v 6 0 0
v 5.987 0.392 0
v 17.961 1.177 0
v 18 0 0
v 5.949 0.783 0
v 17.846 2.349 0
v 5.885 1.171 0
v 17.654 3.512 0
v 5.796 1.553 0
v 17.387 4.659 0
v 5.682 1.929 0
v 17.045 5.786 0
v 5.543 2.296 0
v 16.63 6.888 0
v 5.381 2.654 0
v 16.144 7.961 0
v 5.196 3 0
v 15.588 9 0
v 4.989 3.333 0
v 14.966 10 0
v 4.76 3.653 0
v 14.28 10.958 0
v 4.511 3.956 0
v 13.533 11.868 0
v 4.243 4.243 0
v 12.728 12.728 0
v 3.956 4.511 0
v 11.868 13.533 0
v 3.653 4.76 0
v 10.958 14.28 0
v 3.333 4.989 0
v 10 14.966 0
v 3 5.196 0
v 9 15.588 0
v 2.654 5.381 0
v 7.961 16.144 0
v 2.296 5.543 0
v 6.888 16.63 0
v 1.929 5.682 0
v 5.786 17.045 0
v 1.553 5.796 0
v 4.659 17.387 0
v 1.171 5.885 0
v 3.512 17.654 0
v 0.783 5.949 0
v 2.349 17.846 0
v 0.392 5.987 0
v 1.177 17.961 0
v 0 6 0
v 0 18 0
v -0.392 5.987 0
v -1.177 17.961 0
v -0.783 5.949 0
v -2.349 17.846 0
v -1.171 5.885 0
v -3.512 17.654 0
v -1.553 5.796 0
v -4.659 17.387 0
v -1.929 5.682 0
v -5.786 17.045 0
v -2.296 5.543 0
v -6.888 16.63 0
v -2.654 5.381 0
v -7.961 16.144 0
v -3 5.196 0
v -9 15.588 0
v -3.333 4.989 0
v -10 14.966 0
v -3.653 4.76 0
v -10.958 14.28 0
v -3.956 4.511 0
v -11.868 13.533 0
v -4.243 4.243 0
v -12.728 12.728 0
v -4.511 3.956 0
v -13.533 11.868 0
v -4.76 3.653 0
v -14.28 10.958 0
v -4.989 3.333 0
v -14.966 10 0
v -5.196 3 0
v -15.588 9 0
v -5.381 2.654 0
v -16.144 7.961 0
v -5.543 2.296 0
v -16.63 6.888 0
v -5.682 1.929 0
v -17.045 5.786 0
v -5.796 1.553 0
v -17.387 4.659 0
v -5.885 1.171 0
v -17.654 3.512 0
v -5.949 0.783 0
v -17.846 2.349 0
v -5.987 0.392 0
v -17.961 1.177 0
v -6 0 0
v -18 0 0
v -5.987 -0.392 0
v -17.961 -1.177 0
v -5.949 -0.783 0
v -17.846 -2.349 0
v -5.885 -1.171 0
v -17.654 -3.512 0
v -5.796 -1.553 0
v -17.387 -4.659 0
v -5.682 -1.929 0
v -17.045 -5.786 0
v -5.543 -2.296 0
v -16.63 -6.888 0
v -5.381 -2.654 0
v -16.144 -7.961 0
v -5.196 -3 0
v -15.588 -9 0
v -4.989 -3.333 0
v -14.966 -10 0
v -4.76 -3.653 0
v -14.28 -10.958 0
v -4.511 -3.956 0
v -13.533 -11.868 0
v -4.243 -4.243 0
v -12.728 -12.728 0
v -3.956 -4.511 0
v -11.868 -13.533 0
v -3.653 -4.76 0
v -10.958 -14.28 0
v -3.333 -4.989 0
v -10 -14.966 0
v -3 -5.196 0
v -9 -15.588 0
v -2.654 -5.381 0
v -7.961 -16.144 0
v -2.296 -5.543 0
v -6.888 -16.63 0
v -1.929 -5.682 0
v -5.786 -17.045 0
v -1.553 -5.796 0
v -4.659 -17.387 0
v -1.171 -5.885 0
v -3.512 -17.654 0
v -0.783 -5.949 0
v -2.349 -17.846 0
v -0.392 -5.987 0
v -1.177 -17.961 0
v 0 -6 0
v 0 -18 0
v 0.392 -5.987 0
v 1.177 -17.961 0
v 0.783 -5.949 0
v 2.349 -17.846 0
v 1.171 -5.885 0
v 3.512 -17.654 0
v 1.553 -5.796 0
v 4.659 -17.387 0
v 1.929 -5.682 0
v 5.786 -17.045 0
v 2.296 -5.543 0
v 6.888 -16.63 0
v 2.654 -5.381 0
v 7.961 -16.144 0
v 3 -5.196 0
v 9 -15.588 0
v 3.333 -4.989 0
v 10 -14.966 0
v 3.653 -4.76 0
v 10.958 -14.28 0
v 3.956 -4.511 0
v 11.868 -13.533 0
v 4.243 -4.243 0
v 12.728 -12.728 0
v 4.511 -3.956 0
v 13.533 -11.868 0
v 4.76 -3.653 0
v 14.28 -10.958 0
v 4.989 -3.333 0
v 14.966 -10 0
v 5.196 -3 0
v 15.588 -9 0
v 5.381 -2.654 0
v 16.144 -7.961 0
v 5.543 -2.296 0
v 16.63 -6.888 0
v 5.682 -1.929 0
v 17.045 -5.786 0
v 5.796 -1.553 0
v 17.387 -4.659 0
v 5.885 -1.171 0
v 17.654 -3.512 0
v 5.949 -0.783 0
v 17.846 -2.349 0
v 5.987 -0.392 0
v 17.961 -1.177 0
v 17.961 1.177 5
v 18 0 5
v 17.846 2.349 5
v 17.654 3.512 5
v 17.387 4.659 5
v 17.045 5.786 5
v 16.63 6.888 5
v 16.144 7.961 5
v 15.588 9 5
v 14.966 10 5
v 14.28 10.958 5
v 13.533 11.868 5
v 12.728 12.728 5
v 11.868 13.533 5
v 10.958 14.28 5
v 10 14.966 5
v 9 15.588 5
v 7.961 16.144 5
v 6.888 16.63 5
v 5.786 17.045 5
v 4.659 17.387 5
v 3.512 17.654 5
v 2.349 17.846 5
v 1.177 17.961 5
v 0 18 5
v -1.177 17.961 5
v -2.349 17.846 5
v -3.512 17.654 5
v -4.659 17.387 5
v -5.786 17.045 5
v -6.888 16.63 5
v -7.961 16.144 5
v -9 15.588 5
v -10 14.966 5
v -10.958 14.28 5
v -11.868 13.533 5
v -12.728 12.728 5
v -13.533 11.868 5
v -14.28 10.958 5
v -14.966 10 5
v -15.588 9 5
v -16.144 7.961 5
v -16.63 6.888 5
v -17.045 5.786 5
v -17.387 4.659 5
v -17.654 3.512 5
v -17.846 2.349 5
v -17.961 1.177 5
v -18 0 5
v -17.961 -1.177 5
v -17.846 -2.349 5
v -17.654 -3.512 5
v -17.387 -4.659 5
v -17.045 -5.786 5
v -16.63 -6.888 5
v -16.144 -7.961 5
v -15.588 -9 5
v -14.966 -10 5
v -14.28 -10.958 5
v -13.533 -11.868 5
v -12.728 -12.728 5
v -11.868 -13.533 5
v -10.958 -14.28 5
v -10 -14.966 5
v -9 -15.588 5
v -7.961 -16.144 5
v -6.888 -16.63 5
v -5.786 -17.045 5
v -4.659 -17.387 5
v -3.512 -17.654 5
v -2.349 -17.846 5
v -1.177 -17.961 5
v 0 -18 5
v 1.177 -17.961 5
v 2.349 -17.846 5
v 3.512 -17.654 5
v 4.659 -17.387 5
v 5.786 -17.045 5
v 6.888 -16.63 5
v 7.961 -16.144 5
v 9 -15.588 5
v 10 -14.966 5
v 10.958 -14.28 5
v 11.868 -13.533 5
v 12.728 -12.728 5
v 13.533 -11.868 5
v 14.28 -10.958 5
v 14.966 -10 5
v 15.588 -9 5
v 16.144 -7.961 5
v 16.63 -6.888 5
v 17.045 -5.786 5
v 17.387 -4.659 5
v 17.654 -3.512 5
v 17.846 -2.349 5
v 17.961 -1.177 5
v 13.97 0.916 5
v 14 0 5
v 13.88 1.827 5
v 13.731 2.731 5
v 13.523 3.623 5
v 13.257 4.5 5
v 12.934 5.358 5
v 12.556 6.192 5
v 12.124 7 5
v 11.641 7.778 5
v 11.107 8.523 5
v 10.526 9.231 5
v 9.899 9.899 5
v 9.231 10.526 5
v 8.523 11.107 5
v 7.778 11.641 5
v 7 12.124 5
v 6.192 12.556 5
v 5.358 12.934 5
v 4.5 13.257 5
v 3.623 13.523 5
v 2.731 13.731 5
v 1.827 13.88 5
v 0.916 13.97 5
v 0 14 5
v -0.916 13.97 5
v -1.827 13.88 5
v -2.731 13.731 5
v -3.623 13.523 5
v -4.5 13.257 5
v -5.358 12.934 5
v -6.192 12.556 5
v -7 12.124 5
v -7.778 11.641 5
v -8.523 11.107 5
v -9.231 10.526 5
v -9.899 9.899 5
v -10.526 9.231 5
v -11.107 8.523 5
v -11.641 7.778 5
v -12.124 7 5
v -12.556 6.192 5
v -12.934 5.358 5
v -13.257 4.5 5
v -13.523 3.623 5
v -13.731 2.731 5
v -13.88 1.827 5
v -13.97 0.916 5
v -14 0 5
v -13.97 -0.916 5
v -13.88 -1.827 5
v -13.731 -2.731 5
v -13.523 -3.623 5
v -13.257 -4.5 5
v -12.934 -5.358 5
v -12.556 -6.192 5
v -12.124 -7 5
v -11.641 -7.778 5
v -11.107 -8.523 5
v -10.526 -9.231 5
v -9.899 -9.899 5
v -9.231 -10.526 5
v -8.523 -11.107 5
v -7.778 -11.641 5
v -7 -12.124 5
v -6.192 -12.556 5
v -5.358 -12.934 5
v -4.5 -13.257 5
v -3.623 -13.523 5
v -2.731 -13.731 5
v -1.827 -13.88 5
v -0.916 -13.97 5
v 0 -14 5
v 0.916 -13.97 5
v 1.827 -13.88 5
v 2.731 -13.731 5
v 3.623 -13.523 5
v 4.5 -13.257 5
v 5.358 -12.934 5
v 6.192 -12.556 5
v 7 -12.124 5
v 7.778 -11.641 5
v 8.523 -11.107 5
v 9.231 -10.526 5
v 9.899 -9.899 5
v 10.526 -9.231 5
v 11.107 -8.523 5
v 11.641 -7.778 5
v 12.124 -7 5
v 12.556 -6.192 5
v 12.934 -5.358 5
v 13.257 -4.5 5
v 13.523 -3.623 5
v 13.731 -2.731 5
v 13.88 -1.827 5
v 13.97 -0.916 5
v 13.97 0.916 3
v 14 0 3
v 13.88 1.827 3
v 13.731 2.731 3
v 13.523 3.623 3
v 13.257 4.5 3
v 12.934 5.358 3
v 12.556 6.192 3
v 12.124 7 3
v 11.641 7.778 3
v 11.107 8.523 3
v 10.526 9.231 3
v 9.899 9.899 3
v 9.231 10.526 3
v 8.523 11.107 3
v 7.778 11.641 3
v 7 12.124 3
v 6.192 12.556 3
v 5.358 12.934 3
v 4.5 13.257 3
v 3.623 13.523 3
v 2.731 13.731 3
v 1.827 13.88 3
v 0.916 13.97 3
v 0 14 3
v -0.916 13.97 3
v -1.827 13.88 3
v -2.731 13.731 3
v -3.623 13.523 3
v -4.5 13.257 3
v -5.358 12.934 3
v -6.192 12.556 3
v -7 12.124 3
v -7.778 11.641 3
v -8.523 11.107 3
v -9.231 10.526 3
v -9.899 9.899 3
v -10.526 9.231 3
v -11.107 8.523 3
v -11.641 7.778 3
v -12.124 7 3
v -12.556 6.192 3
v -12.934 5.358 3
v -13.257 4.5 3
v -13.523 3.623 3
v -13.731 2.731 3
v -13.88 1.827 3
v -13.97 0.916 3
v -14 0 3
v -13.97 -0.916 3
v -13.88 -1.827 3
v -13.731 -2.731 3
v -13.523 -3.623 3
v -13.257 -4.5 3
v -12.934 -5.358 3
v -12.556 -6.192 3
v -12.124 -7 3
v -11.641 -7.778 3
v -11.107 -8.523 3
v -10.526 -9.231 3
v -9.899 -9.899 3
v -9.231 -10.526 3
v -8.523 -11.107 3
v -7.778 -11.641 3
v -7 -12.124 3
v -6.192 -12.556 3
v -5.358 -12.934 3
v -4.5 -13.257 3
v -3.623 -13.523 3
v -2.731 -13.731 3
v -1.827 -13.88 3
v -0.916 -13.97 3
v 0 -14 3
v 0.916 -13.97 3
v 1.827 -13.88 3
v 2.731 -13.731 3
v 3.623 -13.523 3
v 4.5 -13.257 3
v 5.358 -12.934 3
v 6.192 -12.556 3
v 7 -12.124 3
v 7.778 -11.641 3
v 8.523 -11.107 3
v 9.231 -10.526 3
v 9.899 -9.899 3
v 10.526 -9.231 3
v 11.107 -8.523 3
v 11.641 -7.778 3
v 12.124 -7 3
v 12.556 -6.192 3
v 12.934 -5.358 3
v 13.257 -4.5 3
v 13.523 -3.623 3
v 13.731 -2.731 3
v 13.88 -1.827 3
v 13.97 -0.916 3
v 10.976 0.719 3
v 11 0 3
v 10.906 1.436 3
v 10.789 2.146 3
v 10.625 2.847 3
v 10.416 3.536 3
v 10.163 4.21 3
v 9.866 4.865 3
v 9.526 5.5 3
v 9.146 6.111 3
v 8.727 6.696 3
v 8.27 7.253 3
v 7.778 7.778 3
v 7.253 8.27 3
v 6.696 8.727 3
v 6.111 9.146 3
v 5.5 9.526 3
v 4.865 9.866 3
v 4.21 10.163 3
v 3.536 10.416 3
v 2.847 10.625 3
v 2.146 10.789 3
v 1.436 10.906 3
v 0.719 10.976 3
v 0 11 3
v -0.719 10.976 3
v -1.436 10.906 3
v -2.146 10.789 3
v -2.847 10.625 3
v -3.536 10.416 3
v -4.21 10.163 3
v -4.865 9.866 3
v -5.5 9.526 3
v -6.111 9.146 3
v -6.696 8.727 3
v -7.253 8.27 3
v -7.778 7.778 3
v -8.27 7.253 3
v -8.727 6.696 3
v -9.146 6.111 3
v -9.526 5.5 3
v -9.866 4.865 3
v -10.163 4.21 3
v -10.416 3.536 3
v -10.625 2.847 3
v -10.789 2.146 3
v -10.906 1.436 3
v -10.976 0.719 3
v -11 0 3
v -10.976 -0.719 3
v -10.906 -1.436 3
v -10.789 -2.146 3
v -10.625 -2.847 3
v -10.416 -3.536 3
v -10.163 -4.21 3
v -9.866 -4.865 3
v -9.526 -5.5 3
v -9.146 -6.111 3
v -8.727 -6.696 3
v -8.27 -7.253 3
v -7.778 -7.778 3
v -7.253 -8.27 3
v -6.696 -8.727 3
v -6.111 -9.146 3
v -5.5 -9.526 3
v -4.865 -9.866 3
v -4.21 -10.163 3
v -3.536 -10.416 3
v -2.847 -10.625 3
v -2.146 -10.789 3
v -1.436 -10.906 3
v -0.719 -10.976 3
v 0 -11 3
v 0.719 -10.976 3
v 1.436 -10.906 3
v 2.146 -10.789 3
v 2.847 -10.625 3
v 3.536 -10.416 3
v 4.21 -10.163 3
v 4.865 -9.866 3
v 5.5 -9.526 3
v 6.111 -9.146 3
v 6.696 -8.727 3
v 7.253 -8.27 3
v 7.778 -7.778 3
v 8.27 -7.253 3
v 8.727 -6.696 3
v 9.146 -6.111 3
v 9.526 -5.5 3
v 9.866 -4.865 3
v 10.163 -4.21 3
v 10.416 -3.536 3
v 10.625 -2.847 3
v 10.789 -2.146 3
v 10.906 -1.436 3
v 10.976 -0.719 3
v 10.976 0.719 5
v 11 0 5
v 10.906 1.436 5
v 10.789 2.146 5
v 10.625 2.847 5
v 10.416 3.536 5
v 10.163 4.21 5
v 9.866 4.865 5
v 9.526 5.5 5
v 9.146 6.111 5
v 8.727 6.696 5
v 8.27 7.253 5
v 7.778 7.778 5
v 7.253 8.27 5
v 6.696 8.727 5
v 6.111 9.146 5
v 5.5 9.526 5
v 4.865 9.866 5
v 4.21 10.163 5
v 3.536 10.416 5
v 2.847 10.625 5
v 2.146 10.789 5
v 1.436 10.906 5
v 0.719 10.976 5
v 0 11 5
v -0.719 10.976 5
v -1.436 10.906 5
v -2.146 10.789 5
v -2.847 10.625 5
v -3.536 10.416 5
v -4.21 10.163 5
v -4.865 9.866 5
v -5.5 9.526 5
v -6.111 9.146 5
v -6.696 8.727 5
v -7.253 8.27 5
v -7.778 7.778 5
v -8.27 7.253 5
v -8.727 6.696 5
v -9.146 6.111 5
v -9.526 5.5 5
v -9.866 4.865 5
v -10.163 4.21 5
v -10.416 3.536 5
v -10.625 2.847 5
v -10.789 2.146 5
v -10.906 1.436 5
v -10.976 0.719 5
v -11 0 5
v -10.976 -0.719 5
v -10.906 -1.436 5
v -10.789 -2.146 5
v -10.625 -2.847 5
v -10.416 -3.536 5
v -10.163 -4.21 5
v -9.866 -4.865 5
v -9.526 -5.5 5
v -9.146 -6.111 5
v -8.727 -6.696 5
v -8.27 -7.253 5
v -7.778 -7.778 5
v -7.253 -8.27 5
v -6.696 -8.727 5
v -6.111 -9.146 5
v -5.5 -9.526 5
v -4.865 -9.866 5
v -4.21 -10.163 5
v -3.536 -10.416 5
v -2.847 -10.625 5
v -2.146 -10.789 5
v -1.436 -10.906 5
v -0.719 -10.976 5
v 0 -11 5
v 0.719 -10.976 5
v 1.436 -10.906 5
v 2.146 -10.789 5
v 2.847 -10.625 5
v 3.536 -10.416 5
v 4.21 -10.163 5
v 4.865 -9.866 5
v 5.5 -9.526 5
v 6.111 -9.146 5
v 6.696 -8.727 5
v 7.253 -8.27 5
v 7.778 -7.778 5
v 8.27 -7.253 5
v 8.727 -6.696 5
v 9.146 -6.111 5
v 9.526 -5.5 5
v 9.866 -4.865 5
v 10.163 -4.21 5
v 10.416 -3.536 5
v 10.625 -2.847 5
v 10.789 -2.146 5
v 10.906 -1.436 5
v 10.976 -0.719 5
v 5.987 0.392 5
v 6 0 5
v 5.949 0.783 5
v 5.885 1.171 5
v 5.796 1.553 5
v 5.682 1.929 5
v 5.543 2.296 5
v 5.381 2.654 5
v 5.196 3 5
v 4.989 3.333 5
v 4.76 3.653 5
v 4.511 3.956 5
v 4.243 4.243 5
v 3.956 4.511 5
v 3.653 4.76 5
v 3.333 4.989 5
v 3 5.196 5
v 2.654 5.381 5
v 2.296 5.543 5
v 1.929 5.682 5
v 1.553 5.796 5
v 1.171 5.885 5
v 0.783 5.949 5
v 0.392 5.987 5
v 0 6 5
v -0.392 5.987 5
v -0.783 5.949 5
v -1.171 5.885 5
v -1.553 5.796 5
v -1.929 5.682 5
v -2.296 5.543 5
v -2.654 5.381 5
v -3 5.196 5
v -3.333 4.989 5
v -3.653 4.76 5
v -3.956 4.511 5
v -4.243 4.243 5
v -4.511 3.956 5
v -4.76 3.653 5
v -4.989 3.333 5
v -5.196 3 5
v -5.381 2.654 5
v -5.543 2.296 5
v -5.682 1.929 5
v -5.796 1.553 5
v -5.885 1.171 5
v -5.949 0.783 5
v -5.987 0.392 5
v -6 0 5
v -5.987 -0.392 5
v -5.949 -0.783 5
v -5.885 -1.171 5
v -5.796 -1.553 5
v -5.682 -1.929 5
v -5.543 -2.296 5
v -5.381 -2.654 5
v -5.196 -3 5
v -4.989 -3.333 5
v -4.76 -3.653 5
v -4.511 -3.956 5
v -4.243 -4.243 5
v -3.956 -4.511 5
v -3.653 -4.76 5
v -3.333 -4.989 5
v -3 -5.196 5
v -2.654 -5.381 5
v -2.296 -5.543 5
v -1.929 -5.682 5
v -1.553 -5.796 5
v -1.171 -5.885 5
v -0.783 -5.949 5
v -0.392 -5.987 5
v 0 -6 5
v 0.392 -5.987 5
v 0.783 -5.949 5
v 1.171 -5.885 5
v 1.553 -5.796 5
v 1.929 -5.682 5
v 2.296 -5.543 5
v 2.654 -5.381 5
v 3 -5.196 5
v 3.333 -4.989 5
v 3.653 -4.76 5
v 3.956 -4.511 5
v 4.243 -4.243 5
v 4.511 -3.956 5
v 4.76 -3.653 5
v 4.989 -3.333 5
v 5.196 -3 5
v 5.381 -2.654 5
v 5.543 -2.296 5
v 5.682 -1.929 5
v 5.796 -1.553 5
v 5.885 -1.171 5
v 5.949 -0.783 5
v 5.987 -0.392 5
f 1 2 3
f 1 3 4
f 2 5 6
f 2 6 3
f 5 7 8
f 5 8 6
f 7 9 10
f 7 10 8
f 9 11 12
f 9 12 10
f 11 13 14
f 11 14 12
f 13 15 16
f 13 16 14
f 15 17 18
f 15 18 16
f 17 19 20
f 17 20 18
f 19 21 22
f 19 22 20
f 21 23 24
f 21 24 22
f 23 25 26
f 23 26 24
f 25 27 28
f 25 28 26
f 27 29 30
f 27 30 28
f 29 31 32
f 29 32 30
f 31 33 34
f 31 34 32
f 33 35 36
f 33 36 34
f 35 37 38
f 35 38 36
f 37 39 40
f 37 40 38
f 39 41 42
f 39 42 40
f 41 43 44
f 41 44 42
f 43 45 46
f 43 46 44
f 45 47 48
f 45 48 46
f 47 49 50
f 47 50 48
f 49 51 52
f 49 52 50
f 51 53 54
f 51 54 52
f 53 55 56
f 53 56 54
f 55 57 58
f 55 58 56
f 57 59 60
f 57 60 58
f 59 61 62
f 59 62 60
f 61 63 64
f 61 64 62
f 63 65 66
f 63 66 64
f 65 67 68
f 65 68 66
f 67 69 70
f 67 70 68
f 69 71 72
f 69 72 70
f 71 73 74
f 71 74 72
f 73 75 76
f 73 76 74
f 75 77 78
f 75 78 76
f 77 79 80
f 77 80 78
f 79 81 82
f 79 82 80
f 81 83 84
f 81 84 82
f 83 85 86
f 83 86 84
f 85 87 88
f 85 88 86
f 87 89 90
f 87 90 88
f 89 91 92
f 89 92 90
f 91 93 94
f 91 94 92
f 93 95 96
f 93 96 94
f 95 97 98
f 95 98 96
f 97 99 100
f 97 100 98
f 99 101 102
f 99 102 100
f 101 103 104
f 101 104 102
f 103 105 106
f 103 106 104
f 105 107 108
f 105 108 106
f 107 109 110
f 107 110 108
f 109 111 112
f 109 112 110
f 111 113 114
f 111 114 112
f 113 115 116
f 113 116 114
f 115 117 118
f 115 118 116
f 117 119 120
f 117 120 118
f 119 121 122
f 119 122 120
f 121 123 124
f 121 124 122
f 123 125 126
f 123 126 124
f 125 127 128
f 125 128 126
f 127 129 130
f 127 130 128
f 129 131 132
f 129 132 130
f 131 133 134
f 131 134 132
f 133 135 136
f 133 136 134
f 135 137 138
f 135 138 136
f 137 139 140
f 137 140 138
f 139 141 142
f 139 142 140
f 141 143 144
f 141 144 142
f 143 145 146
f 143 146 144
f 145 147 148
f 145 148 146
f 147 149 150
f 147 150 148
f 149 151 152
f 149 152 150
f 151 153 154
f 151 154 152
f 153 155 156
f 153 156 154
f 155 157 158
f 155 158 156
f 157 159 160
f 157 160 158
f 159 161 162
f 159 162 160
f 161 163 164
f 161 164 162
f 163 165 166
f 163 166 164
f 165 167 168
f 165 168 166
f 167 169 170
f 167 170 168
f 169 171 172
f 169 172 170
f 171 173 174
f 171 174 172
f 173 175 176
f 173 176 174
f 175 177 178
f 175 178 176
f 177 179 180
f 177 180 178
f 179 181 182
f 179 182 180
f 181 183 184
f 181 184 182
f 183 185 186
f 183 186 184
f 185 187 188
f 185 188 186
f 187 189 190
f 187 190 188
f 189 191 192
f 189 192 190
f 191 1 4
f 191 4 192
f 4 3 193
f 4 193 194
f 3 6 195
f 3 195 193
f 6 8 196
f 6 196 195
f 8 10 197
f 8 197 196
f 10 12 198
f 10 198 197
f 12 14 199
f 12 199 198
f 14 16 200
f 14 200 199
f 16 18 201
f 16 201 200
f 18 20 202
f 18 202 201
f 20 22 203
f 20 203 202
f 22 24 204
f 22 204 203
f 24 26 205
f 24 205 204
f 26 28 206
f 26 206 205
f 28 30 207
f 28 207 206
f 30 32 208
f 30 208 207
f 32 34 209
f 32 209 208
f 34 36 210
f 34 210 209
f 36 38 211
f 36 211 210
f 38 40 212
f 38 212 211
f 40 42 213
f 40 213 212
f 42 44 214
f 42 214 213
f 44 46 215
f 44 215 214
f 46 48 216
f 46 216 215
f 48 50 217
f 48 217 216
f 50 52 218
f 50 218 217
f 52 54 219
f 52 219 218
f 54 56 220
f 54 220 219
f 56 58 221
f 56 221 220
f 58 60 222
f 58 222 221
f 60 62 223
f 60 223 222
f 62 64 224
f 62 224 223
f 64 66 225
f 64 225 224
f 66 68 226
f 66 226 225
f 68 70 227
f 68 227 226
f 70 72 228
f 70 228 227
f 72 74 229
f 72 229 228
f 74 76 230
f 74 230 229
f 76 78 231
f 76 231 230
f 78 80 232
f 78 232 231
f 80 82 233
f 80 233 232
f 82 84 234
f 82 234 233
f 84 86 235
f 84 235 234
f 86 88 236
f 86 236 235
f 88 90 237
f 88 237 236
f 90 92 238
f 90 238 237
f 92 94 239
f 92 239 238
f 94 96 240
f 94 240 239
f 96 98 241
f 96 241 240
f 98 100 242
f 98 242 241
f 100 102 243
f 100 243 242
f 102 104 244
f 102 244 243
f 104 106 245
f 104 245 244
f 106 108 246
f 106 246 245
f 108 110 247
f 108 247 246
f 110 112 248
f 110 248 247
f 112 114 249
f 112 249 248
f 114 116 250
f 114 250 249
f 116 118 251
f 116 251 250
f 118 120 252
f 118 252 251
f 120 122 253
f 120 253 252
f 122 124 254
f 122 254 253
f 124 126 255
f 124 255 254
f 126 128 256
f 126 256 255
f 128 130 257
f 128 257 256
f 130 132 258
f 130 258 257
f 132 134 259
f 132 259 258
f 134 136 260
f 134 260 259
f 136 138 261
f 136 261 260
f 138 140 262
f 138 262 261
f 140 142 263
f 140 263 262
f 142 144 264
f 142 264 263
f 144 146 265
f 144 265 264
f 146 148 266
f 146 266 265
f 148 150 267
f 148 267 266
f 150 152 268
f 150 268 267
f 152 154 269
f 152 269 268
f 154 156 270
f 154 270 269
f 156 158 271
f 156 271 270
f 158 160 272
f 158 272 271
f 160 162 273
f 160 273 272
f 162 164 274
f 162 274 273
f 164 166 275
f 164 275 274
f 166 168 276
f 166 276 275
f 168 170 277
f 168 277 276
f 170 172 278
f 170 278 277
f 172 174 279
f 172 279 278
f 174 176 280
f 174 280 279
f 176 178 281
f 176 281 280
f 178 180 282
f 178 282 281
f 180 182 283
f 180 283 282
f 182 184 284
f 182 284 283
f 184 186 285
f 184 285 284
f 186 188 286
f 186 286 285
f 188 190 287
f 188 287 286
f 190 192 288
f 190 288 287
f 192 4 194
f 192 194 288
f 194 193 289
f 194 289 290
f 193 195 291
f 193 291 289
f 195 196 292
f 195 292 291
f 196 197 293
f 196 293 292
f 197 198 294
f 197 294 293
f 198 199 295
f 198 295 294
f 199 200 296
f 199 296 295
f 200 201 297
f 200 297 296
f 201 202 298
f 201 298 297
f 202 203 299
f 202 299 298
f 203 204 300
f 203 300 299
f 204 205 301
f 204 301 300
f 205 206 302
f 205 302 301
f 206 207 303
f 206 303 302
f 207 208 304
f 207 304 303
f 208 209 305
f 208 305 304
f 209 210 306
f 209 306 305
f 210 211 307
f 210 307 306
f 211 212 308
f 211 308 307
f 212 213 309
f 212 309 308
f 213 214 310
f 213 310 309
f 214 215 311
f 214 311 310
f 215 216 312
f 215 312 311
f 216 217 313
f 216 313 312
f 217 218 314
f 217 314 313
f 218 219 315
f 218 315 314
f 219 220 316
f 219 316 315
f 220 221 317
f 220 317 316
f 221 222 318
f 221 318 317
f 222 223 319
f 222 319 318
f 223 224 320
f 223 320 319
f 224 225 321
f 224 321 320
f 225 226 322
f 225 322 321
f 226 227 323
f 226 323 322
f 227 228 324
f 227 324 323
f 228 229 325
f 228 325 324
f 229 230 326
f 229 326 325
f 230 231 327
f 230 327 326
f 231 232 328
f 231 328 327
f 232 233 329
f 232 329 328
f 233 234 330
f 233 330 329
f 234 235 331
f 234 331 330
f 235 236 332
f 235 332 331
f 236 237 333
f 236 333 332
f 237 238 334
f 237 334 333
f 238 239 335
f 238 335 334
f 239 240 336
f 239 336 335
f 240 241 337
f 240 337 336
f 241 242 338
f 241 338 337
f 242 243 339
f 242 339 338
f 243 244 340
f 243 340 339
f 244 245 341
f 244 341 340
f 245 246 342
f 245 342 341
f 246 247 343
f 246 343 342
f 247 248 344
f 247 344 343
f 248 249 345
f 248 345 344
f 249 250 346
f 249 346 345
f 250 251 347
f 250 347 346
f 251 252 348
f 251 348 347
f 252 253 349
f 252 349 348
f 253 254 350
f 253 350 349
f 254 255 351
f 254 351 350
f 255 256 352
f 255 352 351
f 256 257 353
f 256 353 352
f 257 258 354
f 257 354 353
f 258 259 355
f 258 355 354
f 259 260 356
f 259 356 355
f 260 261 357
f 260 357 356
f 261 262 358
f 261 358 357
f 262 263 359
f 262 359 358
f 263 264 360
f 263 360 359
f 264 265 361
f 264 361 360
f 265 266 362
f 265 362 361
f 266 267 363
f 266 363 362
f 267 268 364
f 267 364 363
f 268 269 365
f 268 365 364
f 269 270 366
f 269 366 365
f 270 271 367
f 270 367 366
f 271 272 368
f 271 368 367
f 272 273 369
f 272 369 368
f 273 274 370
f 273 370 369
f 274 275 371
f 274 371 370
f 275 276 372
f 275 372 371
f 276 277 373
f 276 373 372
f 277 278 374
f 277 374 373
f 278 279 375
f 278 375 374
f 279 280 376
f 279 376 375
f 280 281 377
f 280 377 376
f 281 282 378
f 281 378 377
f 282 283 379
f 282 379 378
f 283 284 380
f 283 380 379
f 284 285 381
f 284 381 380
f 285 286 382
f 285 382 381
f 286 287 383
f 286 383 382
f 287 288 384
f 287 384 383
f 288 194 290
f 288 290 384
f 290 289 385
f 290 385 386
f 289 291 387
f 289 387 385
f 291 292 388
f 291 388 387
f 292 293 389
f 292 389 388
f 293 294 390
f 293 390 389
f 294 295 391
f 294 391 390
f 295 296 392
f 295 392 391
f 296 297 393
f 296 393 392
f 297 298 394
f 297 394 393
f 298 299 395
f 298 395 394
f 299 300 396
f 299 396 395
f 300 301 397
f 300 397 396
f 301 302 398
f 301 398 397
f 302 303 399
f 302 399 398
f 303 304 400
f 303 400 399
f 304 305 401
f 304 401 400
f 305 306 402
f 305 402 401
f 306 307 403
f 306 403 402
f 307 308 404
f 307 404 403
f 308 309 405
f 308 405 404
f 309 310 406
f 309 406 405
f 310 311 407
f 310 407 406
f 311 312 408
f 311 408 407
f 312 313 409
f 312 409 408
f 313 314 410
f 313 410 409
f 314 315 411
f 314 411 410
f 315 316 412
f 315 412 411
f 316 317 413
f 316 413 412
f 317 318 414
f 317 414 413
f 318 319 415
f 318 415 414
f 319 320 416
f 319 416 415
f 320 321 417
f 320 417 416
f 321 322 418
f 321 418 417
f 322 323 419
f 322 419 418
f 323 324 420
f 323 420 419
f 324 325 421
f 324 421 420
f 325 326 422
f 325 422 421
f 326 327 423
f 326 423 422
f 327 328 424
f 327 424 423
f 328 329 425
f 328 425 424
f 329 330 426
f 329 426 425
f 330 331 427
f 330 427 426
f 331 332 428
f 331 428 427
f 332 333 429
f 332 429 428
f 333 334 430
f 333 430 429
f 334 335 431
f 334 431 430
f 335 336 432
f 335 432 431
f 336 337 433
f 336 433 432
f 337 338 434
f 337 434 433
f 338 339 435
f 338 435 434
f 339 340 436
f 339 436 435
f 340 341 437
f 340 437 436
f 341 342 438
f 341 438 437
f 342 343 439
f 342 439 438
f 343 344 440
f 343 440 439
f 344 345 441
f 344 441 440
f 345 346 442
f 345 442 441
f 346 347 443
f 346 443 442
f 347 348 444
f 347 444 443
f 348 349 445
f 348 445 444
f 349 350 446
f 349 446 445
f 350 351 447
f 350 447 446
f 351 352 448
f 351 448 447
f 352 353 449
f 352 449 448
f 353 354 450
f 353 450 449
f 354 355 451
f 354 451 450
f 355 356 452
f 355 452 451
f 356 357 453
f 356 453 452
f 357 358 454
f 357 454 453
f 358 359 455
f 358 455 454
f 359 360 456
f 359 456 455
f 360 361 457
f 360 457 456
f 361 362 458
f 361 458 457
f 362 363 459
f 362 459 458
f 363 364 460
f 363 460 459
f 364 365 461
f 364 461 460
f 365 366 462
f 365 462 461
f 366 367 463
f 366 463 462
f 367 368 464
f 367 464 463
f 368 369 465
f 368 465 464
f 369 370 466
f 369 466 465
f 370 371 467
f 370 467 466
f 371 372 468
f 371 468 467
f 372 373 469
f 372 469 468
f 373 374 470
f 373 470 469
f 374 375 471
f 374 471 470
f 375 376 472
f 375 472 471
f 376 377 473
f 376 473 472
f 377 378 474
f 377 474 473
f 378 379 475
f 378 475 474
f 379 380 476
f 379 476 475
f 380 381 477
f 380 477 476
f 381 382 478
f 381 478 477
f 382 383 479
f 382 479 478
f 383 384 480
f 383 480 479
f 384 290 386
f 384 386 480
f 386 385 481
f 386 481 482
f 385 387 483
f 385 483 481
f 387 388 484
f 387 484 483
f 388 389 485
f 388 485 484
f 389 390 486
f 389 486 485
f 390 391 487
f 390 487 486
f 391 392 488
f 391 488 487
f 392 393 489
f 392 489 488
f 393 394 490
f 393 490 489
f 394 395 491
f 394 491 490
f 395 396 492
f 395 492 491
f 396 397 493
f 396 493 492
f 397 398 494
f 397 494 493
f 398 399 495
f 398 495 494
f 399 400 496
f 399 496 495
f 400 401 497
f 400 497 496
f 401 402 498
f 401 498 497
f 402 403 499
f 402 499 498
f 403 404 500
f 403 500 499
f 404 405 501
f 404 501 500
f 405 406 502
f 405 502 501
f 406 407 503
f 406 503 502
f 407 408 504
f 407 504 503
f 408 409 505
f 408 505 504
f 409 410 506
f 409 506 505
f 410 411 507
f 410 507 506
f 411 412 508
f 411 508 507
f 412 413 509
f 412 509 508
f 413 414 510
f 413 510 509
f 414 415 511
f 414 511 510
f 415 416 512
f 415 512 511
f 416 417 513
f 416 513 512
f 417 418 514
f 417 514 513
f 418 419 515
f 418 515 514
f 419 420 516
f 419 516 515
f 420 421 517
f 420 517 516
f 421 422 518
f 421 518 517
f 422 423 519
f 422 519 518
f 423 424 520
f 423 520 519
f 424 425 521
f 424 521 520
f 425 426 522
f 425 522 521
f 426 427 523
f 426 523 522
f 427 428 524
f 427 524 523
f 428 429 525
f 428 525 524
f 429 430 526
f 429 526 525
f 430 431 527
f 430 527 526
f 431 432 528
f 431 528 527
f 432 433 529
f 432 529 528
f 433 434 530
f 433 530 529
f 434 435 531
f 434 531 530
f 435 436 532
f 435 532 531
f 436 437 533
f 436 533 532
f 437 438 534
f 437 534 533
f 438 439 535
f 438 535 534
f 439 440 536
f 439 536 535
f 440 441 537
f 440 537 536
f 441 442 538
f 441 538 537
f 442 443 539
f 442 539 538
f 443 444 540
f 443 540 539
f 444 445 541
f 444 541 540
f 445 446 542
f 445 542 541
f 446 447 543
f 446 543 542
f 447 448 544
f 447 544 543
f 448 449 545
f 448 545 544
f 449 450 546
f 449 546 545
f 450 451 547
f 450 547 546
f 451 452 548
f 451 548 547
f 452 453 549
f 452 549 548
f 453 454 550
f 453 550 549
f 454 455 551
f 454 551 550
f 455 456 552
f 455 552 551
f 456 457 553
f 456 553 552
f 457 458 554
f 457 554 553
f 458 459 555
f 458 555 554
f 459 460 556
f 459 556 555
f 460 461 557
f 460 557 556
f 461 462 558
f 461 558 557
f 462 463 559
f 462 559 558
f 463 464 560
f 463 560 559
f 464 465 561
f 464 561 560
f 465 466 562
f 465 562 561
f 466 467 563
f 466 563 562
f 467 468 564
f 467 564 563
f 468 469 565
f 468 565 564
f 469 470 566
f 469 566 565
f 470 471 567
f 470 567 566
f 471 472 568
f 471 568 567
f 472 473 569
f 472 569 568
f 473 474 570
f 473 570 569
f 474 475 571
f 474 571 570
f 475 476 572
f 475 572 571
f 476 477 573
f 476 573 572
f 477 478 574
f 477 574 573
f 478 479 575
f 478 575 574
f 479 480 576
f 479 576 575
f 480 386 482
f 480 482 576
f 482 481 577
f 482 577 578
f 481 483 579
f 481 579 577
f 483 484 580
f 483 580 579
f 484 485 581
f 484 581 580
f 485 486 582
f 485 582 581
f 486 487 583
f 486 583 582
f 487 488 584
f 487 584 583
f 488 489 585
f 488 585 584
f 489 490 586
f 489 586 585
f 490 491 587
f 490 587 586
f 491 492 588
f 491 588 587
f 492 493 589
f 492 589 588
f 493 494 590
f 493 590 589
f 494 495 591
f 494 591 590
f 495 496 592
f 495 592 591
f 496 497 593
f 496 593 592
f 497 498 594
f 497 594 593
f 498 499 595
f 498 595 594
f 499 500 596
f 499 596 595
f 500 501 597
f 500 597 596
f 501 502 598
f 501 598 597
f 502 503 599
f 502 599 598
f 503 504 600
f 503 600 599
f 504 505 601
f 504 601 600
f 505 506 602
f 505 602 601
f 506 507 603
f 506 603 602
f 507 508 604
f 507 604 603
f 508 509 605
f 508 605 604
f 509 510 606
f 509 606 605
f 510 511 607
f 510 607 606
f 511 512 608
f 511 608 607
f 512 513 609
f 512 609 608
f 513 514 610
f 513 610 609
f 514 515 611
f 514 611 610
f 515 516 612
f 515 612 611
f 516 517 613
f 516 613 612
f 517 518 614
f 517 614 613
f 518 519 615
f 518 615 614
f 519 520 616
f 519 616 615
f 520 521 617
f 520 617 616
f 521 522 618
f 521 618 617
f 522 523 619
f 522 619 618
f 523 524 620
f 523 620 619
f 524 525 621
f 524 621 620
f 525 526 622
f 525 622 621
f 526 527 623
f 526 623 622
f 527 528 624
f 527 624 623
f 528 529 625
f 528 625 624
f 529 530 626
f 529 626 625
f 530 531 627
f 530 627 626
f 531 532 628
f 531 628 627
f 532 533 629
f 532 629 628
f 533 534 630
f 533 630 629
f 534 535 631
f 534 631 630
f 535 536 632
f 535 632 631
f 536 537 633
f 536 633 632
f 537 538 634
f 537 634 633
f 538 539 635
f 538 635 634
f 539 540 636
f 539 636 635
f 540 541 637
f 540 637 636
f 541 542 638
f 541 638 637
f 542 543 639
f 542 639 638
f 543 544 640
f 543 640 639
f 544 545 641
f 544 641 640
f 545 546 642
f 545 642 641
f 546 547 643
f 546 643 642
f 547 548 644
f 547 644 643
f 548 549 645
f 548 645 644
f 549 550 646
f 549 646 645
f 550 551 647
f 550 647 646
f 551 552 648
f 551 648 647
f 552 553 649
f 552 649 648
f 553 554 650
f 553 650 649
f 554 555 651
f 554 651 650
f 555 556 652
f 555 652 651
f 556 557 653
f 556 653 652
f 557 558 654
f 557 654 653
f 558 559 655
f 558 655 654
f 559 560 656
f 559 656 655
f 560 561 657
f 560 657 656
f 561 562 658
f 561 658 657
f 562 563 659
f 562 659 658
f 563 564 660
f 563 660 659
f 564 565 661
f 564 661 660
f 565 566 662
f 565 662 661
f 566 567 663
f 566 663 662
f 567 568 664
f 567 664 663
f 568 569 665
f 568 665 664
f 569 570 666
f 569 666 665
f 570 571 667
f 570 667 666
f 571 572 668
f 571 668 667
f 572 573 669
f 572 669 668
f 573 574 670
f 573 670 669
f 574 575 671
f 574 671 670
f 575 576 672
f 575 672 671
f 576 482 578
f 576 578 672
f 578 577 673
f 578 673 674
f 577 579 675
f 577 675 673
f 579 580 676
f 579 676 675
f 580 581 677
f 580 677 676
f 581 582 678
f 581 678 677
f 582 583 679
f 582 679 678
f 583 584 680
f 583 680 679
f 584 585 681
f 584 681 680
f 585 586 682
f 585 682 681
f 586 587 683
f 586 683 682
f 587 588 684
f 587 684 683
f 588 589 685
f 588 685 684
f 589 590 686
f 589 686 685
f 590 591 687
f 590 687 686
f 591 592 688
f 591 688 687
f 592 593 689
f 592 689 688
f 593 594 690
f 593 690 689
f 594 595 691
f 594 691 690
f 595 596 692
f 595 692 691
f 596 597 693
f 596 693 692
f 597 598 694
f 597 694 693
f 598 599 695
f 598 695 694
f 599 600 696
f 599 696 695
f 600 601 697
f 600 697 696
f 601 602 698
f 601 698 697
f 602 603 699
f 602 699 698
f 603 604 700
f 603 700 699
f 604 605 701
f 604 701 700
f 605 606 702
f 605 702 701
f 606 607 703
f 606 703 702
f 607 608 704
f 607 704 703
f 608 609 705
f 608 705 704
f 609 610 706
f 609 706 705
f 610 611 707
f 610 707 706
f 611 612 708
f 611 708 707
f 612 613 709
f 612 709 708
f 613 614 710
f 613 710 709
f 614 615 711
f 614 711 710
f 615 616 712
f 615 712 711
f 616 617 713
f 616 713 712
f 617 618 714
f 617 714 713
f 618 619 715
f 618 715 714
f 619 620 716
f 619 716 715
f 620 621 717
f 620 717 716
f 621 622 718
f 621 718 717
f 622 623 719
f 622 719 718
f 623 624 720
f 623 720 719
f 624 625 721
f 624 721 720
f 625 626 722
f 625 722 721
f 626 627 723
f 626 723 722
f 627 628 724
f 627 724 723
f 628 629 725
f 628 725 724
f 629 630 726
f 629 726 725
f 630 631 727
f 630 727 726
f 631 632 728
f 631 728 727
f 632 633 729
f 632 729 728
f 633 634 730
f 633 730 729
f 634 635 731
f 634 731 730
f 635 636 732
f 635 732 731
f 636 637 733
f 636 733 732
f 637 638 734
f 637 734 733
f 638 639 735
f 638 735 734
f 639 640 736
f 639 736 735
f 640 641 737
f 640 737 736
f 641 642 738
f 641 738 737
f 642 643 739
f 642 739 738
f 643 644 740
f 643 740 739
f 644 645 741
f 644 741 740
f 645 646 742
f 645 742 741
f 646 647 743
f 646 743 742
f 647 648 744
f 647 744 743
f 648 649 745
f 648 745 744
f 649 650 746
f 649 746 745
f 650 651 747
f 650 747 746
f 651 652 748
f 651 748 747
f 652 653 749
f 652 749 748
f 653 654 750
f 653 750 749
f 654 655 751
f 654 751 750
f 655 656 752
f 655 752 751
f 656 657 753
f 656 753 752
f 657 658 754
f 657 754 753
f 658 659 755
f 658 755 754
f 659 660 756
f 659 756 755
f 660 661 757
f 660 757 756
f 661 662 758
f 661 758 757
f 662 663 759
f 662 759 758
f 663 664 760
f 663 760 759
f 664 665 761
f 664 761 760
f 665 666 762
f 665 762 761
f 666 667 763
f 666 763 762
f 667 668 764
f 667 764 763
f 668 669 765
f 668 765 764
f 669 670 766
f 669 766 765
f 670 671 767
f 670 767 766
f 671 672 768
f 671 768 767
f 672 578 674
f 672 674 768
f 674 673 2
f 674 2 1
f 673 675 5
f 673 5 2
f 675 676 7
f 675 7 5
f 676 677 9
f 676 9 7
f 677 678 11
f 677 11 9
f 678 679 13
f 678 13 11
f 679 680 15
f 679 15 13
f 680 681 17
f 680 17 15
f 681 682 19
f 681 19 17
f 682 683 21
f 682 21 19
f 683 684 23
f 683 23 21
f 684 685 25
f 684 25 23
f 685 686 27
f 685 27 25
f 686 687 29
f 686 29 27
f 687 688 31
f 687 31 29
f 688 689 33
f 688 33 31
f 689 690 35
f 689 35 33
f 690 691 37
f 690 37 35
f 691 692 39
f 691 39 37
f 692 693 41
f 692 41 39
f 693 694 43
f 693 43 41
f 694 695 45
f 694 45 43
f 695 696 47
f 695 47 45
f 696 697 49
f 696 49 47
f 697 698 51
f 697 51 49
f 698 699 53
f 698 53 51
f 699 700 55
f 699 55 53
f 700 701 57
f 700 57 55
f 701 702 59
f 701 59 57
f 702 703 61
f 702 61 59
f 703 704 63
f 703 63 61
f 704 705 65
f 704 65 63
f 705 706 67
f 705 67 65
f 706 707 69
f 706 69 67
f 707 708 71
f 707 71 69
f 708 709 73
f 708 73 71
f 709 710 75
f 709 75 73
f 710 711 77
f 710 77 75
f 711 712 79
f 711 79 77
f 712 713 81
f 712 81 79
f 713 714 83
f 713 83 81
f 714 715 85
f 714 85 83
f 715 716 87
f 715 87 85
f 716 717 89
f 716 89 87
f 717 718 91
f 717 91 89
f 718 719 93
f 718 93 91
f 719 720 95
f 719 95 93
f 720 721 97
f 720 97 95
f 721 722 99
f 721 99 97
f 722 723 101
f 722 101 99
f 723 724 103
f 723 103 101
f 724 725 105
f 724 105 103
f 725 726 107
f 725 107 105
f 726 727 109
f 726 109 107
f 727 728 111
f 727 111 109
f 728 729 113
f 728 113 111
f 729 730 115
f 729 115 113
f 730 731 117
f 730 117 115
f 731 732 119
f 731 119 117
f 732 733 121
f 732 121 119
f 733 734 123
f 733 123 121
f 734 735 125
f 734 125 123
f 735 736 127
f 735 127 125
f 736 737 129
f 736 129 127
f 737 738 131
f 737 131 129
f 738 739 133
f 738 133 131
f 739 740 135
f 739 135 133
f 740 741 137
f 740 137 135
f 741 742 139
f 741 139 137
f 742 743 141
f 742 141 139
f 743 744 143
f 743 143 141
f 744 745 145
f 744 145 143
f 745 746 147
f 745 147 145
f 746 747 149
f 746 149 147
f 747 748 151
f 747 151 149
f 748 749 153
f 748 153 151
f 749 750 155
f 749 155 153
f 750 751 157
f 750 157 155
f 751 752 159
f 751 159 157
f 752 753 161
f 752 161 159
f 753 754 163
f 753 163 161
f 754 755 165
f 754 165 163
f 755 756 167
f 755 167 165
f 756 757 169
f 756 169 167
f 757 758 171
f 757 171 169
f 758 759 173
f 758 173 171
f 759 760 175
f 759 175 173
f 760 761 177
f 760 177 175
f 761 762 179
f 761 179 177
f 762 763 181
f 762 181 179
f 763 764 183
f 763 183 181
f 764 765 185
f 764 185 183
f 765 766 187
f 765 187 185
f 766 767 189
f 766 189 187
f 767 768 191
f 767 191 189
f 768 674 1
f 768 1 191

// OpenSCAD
// Original MechIntel educational model. CC0-1.0. Units: mm.
// Not a standardized or load-rated component.
$fn=96;
// Section points: [radius, height], mm. Edit to change the profile.
section=[[6, 0], [18, 0], [18, 5], [14, 5], [14, 3], [11, 3], [11, 5], [6, 5]];
rotate_extrude($fn=96) polygon(points=section);
